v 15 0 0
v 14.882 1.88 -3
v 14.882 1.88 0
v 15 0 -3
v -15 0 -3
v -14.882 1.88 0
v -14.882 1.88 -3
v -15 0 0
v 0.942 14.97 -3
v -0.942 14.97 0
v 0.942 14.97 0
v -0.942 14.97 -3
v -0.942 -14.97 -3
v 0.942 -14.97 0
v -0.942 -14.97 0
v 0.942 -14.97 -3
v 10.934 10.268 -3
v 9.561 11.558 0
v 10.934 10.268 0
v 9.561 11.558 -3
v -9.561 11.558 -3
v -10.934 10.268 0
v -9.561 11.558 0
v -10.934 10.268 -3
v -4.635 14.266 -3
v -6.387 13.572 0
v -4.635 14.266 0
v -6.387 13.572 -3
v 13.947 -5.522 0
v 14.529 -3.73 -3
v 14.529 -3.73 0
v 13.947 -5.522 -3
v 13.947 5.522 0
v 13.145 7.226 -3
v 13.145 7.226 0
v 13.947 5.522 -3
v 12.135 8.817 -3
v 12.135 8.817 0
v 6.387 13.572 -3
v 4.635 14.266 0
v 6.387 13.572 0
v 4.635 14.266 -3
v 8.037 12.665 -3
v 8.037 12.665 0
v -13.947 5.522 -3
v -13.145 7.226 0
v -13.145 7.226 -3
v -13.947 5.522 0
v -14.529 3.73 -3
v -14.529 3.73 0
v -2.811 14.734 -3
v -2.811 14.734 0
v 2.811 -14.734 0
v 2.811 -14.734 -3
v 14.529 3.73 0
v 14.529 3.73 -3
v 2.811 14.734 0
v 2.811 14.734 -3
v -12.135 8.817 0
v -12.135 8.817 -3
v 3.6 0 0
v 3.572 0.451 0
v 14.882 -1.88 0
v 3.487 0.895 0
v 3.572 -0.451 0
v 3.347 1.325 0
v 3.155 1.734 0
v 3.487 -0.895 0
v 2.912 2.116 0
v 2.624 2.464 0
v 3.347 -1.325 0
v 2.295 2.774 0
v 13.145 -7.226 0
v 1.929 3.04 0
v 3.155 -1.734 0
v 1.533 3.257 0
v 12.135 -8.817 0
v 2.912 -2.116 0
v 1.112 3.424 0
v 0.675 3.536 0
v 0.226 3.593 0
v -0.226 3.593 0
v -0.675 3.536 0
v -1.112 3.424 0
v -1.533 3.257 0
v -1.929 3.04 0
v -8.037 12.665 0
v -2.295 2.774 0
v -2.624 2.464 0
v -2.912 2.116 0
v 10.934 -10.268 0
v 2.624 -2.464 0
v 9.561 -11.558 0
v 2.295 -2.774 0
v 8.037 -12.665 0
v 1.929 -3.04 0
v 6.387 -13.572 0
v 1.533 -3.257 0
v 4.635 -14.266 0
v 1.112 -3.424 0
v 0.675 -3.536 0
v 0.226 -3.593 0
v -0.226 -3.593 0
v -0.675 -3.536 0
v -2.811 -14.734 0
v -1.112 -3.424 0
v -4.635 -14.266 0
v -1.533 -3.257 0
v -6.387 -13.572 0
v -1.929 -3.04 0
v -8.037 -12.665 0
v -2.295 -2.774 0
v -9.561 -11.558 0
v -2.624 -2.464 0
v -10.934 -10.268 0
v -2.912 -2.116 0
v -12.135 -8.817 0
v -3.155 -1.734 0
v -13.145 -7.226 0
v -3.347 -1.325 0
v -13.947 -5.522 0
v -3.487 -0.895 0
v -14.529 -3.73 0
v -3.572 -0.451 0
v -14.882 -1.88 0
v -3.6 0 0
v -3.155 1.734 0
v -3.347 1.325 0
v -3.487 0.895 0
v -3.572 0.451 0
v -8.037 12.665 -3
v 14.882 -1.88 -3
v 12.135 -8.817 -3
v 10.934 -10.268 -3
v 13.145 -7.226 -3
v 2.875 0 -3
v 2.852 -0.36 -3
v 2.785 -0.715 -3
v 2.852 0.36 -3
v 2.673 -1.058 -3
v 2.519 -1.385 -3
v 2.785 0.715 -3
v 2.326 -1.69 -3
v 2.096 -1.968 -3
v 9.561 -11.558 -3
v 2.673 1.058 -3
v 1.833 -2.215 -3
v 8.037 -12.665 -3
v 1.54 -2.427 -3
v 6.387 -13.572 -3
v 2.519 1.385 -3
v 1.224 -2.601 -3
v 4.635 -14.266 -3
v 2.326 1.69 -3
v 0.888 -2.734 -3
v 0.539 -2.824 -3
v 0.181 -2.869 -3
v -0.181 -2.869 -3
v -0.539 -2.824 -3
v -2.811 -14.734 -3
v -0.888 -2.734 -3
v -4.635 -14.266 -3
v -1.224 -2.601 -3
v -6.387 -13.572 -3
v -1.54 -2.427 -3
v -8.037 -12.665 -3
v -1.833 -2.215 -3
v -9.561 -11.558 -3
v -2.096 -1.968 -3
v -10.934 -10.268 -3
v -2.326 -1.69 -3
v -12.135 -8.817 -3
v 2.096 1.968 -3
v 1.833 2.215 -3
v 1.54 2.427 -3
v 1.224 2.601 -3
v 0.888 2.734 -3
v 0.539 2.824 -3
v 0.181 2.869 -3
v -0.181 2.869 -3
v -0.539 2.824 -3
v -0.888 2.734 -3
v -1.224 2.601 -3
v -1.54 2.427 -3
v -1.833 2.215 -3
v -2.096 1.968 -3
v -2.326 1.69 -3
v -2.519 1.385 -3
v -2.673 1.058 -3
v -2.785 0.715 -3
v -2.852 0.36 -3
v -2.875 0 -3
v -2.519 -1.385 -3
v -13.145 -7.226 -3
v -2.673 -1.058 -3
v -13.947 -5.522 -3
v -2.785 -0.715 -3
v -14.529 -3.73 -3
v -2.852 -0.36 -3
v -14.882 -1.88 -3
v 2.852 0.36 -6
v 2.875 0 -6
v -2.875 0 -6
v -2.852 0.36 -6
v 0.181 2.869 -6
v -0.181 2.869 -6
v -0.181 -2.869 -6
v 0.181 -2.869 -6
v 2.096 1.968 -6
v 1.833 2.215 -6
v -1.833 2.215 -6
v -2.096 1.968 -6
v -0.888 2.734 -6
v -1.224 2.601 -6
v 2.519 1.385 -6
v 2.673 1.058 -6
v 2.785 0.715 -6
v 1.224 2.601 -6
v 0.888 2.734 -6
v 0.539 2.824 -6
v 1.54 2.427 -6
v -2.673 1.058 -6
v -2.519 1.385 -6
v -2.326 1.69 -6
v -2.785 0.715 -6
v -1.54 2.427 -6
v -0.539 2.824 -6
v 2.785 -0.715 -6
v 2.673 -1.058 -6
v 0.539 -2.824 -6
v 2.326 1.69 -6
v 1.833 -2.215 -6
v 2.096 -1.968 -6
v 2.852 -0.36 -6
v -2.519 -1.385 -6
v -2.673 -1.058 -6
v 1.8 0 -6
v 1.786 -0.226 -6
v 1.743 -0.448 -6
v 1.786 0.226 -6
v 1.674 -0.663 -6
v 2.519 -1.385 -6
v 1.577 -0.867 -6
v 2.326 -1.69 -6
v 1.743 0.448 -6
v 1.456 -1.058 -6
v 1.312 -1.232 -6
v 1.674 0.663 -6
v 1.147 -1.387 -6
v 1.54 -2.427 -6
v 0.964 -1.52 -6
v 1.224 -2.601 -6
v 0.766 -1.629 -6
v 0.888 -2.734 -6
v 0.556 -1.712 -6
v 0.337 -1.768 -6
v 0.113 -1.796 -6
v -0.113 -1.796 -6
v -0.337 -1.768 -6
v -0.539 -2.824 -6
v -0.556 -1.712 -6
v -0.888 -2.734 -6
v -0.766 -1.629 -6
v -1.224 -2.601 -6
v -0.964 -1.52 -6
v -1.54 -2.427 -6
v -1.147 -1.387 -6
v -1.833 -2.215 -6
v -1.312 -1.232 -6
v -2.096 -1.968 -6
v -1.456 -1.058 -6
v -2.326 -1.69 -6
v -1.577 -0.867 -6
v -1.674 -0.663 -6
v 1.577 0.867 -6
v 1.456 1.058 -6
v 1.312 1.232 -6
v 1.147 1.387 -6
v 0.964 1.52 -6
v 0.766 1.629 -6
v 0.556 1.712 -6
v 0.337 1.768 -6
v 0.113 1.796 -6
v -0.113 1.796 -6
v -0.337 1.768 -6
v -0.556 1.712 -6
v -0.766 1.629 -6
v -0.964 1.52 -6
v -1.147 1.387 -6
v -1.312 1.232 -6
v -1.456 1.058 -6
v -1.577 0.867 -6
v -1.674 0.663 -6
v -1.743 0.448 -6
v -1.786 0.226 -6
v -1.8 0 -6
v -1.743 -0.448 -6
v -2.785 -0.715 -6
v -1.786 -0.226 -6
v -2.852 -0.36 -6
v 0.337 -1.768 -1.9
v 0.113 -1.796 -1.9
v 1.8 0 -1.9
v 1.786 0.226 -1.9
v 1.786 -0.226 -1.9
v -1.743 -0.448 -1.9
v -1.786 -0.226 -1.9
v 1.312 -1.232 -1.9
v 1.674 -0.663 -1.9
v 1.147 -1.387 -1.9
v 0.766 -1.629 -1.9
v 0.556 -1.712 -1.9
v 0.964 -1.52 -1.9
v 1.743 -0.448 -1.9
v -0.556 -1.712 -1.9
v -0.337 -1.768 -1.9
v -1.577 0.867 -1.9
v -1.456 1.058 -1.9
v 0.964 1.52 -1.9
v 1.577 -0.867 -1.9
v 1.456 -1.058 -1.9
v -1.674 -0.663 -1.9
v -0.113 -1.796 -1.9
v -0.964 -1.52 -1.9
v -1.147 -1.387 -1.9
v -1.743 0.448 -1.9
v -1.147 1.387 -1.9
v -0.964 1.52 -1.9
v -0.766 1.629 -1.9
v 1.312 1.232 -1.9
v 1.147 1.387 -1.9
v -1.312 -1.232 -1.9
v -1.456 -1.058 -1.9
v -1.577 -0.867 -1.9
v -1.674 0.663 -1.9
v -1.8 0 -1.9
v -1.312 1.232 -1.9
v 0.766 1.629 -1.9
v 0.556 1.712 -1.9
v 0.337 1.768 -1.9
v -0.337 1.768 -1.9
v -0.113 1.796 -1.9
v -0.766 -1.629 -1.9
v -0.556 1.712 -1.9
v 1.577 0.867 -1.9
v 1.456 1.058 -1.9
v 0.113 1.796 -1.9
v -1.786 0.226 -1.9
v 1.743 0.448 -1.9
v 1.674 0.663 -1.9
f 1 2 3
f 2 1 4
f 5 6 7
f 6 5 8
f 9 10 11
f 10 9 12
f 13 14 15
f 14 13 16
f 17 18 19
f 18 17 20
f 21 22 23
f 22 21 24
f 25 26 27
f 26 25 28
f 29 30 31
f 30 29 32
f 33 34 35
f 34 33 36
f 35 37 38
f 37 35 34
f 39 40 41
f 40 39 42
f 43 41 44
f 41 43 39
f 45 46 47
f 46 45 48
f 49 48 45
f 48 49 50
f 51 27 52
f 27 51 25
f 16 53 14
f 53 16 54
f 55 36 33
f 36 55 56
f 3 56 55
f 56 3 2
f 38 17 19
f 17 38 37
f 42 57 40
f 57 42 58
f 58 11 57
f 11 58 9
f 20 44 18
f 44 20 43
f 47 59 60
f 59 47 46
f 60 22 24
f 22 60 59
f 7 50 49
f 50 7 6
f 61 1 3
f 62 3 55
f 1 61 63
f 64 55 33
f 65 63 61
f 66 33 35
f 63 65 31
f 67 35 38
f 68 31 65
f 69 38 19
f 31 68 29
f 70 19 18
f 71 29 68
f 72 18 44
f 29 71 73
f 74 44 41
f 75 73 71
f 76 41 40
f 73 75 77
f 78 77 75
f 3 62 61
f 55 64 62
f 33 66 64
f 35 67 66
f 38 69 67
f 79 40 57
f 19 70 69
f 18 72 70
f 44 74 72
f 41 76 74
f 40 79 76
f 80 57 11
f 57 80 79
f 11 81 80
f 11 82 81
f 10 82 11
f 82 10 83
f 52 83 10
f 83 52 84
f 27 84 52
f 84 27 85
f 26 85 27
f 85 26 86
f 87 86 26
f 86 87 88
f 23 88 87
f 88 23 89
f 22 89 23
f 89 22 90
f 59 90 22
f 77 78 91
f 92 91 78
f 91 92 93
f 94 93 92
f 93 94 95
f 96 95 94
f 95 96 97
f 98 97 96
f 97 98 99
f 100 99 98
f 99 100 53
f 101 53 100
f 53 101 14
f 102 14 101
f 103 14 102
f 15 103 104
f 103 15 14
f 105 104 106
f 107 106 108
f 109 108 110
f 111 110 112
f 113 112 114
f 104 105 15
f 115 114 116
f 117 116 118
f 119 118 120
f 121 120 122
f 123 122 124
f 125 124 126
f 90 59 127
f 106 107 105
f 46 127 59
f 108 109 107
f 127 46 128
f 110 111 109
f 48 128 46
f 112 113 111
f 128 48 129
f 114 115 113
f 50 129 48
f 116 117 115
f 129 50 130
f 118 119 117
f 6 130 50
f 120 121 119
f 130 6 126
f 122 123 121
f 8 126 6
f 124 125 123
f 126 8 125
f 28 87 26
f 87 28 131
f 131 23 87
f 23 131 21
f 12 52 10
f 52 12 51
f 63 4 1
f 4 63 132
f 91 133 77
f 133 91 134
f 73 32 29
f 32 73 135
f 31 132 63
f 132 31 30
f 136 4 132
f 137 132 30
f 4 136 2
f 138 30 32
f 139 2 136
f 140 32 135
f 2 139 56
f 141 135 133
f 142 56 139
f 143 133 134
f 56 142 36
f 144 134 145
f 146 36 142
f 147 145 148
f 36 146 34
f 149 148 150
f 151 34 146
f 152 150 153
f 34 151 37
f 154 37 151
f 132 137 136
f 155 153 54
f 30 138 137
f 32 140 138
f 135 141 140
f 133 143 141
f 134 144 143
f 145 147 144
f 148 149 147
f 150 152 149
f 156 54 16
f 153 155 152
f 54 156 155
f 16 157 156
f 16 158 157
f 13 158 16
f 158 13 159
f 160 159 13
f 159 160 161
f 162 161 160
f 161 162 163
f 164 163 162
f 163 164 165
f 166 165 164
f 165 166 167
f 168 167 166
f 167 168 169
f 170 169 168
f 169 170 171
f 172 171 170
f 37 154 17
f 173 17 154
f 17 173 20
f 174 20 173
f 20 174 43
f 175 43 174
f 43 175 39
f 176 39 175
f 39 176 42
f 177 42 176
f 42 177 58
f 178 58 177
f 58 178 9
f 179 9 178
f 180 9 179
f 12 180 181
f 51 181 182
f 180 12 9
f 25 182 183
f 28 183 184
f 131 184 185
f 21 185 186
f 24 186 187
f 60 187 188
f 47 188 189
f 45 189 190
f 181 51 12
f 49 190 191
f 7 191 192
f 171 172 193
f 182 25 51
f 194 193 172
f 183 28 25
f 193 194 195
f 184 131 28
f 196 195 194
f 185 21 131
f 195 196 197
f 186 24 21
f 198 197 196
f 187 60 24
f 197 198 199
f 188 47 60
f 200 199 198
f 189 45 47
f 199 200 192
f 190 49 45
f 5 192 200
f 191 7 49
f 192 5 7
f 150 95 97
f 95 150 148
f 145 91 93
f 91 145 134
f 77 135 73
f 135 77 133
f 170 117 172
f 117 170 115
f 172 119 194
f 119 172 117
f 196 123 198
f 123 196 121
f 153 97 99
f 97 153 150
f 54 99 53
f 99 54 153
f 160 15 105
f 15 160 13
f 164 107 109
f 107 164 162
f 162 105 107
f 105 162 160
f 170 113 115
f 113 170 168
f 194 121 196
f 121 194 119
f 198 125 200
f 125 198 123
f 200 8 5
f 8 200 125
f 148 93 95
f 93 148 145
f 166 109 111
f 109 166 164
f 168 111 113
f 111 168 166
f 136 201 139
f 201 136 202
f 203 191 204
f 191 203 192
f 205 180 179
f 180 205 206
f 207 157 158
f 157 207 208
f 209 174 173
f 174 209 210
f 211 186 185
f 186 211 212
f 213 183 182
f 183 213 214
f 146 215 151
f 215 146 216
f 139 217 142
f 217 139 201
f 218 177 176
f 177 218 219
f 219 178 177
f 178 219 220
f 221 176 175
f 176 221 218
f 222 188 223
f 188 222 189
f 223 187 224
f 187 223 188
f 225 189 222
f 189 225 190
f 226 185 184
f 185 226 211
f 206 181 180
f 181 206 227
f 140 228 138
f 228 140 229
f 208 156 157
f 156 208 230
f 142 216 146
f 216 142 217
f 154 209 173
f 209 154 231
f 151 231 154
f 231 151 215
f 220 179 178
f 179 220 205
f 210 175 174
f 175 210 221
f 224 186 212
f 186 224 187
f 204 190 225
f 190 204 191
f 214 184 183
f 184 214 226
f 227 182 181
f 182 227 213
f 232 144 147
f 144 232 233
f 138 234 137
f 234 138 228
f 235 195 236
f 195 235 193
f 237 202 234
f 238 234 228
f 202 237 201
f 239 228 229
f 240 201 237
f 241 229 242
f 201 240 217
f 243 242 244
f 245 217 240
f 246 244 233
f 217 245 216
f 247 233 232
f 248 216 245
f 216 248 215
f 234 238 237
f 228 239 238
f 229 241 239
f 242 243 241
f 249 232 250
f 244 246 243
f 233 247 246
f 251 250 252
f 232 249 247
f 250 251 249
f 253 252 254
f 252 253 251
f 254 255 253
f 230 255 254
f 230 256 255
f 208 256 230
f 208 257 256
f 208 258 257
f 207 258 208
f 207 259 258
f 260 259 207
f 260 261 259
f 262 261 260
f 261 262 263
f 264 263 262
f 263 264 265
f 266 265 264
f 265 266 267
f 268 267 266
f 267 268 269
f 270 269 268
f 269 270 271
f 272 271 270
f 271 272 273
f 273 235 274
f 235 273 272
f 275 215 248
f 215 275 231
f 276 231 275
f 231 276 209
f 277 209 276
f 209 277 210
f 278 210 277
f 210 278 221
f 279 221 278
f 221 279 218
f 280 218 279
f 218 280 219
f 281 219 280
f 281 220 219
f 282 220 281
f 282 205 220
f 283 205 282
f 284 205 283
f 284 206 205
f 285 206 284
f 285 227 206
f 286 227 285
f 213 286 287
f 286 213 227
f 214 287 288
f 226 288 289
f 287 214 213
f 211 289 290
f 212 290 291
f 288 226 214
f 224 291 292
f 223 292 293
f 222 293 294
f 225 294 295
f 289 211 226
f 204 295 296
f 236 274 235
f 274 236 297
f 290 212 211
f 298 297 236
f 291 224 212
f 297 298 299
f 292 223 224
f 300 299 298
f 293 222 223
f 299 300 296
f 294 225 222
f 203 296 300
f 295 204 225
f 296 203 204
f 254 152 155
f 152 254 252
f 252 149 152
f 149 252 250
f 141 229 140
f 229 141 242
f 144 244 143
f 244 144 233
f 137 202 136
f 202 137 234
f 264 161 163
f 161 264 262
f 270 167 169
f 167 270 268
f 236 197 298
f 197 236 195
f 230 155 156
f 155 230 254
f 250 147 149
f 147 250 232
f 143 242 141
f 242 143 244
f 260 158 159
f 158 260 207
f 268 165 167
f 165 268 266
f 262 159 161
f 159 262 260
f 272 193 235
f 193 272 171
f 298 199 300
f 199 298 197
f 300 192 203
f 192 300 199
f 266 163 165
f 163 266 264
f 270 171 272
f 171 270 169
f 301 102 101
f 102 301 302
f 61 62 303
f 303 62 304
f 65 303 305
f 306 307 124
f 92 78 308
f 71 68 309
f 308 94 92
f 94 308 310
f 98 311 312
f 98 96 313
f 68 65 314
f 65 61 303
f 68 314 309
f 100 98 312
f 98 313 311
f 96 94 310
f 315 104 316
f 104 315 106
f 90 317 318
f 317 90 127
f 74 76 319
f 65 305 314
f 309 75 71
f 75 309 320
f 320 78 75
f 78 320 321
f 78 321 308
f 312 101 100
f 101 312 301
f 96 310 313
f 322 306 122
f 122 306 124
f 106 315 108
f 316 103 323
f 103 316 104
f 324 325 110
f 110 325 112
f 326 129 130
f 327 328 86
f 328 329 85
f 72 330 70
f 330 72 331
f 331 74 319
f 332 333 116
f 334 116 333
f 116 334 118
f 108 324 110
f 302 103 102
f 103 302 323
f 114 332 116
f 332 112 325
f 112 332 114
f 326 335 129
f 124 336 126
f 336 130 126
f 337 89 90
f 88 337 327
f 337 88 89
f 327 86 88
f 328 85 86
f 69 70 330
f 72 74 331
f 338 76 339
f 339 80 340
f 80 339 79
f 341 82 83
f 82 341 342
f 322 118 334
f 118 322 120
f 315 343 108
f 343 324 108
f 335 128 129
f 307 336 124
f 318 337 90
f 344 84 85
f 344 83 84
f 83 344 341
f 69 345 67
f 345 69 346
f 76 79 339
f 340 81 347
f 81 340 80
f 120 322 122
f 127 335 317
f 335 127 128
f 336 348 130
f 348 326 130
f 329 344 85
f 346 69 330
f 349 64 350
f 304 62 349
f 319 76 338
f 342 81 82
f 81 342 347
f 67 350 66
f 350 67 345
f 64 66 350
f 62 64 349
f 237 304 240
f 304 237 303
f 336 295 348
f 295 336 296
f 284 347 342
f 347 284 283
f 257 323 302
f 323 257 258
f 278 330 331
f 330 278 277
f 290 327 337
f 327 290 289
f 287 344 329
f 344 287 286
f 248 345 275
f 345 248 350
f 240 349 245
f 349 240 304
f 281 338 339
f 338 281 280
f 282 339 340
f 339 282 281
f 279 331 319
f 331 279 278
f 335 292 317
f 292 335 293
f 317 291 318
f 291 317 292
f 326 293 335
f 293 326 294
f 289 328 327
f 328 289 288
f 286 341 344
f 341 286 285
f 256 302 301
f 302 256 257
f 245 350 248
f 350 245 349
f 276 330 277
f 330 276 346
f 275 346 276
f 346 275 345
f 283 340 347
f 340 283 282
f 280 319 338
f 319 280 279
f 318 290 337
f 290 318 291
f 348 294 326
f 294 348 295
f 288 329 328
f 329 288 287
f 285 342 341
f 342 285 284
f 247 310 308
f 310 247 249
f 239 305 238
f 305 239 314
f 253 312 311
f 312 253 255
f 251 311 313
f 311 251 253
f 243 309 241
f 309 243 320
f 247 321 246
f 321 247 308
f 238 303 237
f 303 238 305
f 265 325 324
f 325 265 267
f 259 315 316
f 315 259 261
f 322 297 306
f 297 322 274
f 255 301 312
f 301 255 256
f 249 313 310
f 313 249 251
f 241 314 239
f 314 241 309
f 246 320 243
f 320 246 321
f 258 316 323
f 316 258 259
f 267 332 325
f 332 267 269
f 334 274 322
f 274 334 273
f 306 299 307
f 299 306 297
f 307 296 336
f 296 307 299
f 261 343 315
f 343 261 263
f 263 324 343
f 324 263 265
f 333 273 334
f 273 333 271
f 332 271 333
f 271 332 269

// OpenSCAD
$fn = 50;


difference() {
	union() {
		translate(v = [0, 0, -3.0000000000]) {
			cylinder(h = 3, r = 15.0000000000);
		}
		#translate(v = [0, 0, -6.0000000000]) {
			cylinder(h = 6, r = 2.8750000000);
		}
	}
	union() {
		translate(v = [0, 0, 0]) {
			rotate(a = [0, 0, 0]) {
				difference() {
					union() {
						translate(v = [0, 0, -6.0000000000]) {
							cylinder(h = 6, r = 1.5000000000);
						}
						translate(v = [0, 0, -1.9000000000]) {
							cylinder(h = 1.9000000000, r1 = 1.8000000000, r2 = 3.6000000000);
						}
						translate(v = [0, 0, -6.0000000000]) {
							cylinder(h = 6, r = 1.8000000000);
						}
						translate(v = [0, 0, -6.0000000000]) {
							cylinder(h = 6, r = 1.5000000000);
						}
					}
					union();
				}
			}
		}
	}
}
